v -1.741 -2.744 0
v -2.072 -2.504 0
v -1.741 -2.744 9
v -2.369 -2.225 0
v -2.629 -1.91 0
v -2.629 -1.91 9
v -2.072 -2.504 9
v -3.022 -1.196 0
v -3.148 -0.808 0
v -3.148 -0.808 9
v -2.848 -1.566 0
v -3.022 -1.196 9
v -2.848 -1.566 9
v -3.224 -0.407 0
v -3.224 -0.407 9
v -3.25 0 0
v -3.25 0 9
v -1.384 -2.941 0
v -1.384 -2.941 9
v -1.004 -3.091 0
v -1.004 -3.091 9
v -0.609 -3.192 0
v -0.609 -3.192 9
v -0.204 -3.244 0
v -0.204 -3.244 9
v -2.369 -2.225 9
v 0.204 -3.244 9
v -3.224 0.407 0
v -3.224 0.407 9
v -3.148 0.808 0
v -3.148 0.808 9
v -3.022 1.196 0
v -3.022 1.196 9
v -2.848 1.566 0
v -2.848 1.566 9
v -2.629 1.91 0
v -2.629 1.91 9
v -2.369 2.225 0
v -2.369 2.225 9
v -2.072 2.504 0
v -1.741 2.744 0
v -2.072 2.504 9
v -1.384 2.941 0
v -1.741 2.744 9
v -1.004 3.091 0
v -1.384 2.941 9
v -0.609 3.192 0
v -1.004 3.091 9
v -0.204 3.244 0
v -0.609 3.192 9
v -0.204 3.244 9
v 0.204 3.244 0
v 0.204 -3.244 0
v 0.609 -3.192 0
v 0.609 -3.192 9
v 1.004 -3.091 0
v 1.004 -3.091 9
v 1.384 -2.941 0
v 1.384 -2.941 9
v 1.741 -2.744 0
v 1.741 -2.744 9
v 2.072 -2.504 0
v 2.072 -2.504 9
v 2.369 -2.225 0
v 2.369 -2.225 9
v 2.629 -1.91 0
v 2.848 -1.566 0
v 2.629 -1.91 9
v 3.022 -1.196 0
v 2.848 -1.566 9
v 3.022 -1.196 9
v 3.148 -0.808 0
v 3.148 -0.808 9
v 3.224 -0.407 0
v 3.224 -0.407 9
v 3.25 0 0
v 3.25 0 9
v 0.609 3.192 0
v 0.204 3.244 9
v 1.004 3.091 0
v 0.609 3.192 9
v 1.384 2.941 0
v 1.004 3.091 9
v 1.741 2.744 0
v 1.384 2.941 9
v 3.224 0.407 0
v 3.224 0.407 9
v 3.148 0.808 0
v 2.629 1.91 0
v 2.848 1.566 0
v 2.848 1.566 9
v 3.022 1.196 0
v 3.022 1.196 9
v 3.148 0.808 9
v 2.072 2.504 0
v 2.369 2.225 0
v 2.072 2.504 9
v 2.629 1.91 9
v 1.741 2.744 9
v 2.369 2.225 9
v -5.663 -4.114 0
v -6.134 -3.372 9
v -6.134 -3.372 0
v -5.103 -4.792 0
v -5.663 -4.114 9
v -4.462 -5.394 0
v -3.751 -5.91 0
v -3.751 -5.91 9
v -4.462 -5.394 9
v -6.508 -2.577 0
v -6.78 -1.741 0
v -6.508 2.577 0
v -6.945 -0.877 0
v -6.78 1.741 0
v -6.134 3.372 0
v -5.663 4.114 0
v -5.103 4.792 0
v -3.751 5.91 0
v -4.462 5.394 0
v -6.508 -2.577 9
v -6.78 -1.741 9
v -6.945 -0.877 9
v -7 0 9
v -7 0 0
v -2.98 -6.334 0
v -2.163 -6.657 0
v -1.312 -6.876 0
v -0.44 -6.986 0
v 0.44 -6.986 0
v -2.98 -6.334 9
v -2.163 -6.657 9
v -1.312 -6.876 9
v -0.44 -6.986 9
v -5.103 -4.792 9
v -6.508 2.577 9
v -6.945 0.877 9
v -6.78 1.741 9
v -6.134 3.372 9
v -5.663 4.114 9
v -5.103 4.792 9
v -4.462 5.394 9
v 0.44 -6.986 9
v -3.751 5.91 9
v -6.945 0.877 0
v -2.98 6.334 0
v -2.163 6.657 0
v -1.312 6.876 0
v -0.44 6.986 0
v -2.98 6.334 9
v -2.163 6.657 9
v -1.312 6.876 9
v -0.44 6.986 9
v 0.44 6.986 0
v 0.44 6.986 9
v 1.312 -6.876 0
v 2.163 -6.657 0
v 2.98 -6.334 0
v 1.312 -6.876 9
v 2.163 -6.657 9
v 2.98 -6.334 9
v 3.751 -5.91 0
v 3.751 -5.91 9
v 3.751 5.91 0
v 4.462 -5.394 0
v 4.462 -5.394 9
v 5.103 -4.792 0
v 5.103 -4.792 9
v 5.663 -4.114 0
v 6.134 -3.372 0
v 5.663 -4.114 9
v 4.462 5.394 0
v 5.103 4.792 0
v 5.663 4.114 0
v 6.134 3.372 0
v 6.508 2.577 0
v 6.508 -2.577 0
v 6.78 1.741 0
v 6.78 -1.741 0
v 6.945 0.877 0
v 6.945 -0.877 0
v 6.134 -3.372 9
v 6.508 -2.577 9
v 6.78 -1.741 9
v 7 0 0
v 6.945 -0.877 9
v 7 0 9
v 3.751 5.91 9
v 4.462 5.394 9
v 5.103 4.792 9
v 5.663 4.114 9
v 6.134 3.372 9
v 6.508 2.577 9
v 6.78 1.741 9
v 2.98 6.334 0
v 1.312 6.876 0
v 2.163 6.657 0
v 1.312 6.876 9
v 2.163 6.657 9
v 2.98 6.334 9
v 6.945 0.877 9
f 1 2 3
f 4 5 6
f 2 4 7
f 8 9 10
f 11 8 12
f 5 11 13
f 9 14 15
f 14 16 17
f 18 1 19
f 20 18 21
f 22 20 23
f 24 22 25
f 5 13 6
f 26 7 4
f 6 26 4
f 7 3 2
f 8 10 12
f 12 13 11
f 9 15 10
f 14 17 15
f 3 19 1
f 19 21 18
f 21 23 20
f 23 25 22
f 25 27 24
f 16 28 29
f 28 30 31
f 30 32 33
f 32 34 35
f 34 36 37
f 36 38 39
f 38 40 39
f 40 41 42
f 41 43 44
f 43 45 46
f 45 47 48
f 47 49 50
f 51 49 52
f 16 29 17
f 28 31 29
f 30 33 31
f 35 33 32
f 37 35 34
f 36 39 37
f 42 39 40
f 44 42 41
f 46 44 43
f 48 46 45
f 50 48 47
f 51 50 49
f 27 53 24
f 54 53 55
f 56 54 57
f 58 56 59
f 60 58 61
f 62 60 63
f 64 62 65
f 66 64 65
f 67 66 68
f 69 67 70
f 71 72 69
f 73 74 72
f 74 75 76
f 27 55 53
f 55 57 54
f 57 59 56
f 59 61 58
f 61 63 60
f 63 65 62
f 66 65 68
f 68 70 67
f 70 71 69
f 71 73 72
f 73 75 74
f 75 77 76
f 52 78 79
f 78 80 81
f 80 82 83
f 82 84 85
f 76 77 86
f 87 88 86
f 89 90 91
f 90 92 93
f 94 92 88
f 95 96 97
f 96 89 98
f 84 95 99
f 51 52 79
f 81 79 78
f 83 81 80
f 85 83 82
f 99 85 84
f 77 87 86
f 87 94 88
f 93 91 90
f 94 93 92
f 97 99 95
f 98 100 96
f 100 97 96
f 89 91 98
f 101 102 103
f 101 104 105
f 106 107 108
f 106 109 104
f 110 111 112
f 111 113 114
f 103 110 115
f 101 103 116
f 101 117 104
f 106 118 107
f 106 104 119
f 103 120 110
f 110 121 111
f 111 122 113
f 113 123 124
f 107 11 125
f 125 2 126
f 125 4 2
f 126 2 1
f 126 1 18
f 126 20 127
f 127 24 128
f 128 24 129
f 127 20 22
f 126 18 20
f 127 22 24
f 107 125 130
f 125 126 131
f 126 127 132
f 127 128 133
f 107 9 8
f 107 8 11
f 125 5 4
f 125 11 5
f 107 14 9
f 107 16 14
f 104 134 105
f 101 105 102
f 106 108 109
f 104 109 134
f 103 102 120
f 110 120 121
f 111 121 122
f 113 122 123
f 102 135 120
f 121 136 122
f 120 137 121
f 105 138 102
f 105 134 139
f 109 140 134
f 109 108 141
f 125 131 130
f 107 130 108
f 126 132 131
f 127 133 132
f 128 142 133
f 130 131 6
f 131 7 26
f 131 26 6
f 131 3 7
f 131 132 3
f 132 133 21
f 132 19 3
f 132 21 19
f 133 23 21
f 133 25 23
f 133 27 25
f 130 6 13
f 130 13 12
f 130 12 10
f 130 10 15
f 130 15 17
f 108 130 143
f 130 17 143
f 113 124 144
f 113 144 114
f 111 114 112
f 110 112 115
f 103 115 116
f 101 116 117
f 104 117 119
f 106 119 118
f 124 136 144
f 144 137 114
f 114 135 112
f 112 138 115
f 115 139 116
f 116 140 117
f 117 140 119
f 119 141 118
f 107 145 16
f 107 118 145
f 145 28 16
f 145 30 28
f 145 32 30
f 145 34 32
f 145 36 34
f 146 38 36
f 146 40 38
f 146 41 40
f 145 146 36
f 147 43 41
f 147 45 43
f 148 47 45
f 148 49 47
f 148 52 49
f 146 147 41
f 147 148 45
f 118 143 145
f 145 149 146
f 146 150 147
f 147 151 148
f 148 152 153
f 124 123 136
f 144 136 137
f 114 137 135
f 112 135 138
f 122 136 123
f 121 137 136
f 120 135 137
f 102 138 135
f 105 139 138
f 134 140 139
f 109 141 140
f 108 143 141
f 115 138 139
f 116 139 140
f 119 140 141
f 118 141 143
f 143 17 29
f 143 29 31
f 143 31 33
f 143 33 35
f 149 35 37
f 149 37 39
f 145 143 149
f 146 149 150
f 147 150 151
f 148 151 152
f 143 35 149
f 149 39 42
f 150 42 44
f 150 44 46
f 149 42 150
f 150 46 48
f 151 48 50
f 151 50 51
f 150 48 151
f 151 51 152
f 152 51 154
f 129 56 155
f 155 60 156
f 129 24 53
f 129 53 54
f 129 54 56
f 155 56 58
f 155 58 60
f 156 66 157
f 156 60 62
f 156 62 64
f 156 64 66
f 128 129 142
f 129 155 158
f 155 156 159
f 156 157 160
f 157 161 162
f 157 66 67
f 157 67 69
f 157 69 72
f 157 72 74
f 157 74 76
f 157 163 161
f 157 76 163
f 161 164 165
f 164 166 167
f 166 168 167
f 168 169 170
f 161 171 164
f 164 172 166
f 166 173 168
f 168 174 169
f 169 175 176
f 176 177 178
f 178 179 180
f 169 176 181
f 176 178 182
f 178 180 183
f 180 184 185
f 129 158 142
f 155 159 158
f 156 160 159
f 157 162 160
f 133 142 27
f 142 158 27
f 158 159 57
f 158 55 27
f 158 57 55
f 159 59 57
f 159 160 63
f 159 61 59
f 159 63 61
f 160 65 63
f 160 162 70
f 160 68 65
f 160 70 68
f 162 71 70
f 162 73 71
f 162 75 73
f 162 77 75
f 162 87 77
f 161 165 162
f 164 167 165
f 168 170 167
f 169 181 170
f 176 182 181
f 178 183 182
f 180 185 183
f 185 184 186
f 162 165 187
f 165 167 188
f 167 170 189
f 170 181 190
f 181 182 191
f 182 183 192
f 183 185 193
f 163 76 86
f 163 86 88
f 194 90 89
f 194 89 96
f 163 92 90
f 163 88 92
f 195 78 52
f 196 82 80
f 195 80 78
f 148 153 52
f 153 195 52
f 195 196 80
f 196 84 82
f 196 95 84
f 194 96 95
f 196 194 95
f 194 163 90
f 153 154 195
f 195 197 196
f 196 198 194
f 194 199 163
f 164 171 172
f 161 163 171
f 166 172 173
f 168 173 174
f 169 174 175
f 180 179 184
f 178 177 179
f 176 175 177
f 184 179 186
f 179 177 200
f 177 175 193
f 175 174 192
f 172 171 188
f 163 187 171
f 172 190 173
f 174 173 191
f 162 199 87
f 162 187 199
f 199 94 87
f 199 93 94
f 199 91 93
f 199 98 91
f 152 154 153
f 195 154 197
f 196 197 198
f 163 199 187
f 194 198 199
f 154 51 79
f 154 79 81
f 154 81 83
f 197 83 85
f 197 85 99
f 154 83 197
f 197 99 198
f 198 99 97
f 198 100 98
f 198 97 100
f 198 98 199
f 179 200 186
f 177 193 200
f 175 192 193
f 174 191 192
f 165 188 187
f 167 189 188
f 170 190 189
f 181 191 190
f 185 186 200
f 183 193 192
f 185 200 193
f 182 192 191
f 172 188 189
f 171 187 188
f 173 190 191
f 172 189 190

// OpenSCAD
$fn = 50;

difference() {
	union() {
		cylinder(h = 9, r = 7.0);
	}
	union() {
		cylinder(h = 9, r = 3.25);
		cylinder(h = 9, r = 1.8);
	}
}
